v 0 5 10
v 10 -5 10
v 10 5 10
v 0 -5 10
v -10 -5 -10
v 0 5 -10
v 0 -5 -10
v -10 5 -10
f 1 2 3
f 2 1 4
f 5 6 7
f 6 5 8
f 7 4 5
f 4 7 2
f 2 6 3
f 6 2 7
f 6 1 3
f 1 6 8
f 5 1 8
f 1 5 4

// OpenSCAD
// A shear, which no translate/rotate/scale combination can express.
multmatrix([[1, 0, 0.5, 0], [0, 1, 0, 0], [0, 0, 1, 0]])
  cube([10, 10, 20], center = true);
